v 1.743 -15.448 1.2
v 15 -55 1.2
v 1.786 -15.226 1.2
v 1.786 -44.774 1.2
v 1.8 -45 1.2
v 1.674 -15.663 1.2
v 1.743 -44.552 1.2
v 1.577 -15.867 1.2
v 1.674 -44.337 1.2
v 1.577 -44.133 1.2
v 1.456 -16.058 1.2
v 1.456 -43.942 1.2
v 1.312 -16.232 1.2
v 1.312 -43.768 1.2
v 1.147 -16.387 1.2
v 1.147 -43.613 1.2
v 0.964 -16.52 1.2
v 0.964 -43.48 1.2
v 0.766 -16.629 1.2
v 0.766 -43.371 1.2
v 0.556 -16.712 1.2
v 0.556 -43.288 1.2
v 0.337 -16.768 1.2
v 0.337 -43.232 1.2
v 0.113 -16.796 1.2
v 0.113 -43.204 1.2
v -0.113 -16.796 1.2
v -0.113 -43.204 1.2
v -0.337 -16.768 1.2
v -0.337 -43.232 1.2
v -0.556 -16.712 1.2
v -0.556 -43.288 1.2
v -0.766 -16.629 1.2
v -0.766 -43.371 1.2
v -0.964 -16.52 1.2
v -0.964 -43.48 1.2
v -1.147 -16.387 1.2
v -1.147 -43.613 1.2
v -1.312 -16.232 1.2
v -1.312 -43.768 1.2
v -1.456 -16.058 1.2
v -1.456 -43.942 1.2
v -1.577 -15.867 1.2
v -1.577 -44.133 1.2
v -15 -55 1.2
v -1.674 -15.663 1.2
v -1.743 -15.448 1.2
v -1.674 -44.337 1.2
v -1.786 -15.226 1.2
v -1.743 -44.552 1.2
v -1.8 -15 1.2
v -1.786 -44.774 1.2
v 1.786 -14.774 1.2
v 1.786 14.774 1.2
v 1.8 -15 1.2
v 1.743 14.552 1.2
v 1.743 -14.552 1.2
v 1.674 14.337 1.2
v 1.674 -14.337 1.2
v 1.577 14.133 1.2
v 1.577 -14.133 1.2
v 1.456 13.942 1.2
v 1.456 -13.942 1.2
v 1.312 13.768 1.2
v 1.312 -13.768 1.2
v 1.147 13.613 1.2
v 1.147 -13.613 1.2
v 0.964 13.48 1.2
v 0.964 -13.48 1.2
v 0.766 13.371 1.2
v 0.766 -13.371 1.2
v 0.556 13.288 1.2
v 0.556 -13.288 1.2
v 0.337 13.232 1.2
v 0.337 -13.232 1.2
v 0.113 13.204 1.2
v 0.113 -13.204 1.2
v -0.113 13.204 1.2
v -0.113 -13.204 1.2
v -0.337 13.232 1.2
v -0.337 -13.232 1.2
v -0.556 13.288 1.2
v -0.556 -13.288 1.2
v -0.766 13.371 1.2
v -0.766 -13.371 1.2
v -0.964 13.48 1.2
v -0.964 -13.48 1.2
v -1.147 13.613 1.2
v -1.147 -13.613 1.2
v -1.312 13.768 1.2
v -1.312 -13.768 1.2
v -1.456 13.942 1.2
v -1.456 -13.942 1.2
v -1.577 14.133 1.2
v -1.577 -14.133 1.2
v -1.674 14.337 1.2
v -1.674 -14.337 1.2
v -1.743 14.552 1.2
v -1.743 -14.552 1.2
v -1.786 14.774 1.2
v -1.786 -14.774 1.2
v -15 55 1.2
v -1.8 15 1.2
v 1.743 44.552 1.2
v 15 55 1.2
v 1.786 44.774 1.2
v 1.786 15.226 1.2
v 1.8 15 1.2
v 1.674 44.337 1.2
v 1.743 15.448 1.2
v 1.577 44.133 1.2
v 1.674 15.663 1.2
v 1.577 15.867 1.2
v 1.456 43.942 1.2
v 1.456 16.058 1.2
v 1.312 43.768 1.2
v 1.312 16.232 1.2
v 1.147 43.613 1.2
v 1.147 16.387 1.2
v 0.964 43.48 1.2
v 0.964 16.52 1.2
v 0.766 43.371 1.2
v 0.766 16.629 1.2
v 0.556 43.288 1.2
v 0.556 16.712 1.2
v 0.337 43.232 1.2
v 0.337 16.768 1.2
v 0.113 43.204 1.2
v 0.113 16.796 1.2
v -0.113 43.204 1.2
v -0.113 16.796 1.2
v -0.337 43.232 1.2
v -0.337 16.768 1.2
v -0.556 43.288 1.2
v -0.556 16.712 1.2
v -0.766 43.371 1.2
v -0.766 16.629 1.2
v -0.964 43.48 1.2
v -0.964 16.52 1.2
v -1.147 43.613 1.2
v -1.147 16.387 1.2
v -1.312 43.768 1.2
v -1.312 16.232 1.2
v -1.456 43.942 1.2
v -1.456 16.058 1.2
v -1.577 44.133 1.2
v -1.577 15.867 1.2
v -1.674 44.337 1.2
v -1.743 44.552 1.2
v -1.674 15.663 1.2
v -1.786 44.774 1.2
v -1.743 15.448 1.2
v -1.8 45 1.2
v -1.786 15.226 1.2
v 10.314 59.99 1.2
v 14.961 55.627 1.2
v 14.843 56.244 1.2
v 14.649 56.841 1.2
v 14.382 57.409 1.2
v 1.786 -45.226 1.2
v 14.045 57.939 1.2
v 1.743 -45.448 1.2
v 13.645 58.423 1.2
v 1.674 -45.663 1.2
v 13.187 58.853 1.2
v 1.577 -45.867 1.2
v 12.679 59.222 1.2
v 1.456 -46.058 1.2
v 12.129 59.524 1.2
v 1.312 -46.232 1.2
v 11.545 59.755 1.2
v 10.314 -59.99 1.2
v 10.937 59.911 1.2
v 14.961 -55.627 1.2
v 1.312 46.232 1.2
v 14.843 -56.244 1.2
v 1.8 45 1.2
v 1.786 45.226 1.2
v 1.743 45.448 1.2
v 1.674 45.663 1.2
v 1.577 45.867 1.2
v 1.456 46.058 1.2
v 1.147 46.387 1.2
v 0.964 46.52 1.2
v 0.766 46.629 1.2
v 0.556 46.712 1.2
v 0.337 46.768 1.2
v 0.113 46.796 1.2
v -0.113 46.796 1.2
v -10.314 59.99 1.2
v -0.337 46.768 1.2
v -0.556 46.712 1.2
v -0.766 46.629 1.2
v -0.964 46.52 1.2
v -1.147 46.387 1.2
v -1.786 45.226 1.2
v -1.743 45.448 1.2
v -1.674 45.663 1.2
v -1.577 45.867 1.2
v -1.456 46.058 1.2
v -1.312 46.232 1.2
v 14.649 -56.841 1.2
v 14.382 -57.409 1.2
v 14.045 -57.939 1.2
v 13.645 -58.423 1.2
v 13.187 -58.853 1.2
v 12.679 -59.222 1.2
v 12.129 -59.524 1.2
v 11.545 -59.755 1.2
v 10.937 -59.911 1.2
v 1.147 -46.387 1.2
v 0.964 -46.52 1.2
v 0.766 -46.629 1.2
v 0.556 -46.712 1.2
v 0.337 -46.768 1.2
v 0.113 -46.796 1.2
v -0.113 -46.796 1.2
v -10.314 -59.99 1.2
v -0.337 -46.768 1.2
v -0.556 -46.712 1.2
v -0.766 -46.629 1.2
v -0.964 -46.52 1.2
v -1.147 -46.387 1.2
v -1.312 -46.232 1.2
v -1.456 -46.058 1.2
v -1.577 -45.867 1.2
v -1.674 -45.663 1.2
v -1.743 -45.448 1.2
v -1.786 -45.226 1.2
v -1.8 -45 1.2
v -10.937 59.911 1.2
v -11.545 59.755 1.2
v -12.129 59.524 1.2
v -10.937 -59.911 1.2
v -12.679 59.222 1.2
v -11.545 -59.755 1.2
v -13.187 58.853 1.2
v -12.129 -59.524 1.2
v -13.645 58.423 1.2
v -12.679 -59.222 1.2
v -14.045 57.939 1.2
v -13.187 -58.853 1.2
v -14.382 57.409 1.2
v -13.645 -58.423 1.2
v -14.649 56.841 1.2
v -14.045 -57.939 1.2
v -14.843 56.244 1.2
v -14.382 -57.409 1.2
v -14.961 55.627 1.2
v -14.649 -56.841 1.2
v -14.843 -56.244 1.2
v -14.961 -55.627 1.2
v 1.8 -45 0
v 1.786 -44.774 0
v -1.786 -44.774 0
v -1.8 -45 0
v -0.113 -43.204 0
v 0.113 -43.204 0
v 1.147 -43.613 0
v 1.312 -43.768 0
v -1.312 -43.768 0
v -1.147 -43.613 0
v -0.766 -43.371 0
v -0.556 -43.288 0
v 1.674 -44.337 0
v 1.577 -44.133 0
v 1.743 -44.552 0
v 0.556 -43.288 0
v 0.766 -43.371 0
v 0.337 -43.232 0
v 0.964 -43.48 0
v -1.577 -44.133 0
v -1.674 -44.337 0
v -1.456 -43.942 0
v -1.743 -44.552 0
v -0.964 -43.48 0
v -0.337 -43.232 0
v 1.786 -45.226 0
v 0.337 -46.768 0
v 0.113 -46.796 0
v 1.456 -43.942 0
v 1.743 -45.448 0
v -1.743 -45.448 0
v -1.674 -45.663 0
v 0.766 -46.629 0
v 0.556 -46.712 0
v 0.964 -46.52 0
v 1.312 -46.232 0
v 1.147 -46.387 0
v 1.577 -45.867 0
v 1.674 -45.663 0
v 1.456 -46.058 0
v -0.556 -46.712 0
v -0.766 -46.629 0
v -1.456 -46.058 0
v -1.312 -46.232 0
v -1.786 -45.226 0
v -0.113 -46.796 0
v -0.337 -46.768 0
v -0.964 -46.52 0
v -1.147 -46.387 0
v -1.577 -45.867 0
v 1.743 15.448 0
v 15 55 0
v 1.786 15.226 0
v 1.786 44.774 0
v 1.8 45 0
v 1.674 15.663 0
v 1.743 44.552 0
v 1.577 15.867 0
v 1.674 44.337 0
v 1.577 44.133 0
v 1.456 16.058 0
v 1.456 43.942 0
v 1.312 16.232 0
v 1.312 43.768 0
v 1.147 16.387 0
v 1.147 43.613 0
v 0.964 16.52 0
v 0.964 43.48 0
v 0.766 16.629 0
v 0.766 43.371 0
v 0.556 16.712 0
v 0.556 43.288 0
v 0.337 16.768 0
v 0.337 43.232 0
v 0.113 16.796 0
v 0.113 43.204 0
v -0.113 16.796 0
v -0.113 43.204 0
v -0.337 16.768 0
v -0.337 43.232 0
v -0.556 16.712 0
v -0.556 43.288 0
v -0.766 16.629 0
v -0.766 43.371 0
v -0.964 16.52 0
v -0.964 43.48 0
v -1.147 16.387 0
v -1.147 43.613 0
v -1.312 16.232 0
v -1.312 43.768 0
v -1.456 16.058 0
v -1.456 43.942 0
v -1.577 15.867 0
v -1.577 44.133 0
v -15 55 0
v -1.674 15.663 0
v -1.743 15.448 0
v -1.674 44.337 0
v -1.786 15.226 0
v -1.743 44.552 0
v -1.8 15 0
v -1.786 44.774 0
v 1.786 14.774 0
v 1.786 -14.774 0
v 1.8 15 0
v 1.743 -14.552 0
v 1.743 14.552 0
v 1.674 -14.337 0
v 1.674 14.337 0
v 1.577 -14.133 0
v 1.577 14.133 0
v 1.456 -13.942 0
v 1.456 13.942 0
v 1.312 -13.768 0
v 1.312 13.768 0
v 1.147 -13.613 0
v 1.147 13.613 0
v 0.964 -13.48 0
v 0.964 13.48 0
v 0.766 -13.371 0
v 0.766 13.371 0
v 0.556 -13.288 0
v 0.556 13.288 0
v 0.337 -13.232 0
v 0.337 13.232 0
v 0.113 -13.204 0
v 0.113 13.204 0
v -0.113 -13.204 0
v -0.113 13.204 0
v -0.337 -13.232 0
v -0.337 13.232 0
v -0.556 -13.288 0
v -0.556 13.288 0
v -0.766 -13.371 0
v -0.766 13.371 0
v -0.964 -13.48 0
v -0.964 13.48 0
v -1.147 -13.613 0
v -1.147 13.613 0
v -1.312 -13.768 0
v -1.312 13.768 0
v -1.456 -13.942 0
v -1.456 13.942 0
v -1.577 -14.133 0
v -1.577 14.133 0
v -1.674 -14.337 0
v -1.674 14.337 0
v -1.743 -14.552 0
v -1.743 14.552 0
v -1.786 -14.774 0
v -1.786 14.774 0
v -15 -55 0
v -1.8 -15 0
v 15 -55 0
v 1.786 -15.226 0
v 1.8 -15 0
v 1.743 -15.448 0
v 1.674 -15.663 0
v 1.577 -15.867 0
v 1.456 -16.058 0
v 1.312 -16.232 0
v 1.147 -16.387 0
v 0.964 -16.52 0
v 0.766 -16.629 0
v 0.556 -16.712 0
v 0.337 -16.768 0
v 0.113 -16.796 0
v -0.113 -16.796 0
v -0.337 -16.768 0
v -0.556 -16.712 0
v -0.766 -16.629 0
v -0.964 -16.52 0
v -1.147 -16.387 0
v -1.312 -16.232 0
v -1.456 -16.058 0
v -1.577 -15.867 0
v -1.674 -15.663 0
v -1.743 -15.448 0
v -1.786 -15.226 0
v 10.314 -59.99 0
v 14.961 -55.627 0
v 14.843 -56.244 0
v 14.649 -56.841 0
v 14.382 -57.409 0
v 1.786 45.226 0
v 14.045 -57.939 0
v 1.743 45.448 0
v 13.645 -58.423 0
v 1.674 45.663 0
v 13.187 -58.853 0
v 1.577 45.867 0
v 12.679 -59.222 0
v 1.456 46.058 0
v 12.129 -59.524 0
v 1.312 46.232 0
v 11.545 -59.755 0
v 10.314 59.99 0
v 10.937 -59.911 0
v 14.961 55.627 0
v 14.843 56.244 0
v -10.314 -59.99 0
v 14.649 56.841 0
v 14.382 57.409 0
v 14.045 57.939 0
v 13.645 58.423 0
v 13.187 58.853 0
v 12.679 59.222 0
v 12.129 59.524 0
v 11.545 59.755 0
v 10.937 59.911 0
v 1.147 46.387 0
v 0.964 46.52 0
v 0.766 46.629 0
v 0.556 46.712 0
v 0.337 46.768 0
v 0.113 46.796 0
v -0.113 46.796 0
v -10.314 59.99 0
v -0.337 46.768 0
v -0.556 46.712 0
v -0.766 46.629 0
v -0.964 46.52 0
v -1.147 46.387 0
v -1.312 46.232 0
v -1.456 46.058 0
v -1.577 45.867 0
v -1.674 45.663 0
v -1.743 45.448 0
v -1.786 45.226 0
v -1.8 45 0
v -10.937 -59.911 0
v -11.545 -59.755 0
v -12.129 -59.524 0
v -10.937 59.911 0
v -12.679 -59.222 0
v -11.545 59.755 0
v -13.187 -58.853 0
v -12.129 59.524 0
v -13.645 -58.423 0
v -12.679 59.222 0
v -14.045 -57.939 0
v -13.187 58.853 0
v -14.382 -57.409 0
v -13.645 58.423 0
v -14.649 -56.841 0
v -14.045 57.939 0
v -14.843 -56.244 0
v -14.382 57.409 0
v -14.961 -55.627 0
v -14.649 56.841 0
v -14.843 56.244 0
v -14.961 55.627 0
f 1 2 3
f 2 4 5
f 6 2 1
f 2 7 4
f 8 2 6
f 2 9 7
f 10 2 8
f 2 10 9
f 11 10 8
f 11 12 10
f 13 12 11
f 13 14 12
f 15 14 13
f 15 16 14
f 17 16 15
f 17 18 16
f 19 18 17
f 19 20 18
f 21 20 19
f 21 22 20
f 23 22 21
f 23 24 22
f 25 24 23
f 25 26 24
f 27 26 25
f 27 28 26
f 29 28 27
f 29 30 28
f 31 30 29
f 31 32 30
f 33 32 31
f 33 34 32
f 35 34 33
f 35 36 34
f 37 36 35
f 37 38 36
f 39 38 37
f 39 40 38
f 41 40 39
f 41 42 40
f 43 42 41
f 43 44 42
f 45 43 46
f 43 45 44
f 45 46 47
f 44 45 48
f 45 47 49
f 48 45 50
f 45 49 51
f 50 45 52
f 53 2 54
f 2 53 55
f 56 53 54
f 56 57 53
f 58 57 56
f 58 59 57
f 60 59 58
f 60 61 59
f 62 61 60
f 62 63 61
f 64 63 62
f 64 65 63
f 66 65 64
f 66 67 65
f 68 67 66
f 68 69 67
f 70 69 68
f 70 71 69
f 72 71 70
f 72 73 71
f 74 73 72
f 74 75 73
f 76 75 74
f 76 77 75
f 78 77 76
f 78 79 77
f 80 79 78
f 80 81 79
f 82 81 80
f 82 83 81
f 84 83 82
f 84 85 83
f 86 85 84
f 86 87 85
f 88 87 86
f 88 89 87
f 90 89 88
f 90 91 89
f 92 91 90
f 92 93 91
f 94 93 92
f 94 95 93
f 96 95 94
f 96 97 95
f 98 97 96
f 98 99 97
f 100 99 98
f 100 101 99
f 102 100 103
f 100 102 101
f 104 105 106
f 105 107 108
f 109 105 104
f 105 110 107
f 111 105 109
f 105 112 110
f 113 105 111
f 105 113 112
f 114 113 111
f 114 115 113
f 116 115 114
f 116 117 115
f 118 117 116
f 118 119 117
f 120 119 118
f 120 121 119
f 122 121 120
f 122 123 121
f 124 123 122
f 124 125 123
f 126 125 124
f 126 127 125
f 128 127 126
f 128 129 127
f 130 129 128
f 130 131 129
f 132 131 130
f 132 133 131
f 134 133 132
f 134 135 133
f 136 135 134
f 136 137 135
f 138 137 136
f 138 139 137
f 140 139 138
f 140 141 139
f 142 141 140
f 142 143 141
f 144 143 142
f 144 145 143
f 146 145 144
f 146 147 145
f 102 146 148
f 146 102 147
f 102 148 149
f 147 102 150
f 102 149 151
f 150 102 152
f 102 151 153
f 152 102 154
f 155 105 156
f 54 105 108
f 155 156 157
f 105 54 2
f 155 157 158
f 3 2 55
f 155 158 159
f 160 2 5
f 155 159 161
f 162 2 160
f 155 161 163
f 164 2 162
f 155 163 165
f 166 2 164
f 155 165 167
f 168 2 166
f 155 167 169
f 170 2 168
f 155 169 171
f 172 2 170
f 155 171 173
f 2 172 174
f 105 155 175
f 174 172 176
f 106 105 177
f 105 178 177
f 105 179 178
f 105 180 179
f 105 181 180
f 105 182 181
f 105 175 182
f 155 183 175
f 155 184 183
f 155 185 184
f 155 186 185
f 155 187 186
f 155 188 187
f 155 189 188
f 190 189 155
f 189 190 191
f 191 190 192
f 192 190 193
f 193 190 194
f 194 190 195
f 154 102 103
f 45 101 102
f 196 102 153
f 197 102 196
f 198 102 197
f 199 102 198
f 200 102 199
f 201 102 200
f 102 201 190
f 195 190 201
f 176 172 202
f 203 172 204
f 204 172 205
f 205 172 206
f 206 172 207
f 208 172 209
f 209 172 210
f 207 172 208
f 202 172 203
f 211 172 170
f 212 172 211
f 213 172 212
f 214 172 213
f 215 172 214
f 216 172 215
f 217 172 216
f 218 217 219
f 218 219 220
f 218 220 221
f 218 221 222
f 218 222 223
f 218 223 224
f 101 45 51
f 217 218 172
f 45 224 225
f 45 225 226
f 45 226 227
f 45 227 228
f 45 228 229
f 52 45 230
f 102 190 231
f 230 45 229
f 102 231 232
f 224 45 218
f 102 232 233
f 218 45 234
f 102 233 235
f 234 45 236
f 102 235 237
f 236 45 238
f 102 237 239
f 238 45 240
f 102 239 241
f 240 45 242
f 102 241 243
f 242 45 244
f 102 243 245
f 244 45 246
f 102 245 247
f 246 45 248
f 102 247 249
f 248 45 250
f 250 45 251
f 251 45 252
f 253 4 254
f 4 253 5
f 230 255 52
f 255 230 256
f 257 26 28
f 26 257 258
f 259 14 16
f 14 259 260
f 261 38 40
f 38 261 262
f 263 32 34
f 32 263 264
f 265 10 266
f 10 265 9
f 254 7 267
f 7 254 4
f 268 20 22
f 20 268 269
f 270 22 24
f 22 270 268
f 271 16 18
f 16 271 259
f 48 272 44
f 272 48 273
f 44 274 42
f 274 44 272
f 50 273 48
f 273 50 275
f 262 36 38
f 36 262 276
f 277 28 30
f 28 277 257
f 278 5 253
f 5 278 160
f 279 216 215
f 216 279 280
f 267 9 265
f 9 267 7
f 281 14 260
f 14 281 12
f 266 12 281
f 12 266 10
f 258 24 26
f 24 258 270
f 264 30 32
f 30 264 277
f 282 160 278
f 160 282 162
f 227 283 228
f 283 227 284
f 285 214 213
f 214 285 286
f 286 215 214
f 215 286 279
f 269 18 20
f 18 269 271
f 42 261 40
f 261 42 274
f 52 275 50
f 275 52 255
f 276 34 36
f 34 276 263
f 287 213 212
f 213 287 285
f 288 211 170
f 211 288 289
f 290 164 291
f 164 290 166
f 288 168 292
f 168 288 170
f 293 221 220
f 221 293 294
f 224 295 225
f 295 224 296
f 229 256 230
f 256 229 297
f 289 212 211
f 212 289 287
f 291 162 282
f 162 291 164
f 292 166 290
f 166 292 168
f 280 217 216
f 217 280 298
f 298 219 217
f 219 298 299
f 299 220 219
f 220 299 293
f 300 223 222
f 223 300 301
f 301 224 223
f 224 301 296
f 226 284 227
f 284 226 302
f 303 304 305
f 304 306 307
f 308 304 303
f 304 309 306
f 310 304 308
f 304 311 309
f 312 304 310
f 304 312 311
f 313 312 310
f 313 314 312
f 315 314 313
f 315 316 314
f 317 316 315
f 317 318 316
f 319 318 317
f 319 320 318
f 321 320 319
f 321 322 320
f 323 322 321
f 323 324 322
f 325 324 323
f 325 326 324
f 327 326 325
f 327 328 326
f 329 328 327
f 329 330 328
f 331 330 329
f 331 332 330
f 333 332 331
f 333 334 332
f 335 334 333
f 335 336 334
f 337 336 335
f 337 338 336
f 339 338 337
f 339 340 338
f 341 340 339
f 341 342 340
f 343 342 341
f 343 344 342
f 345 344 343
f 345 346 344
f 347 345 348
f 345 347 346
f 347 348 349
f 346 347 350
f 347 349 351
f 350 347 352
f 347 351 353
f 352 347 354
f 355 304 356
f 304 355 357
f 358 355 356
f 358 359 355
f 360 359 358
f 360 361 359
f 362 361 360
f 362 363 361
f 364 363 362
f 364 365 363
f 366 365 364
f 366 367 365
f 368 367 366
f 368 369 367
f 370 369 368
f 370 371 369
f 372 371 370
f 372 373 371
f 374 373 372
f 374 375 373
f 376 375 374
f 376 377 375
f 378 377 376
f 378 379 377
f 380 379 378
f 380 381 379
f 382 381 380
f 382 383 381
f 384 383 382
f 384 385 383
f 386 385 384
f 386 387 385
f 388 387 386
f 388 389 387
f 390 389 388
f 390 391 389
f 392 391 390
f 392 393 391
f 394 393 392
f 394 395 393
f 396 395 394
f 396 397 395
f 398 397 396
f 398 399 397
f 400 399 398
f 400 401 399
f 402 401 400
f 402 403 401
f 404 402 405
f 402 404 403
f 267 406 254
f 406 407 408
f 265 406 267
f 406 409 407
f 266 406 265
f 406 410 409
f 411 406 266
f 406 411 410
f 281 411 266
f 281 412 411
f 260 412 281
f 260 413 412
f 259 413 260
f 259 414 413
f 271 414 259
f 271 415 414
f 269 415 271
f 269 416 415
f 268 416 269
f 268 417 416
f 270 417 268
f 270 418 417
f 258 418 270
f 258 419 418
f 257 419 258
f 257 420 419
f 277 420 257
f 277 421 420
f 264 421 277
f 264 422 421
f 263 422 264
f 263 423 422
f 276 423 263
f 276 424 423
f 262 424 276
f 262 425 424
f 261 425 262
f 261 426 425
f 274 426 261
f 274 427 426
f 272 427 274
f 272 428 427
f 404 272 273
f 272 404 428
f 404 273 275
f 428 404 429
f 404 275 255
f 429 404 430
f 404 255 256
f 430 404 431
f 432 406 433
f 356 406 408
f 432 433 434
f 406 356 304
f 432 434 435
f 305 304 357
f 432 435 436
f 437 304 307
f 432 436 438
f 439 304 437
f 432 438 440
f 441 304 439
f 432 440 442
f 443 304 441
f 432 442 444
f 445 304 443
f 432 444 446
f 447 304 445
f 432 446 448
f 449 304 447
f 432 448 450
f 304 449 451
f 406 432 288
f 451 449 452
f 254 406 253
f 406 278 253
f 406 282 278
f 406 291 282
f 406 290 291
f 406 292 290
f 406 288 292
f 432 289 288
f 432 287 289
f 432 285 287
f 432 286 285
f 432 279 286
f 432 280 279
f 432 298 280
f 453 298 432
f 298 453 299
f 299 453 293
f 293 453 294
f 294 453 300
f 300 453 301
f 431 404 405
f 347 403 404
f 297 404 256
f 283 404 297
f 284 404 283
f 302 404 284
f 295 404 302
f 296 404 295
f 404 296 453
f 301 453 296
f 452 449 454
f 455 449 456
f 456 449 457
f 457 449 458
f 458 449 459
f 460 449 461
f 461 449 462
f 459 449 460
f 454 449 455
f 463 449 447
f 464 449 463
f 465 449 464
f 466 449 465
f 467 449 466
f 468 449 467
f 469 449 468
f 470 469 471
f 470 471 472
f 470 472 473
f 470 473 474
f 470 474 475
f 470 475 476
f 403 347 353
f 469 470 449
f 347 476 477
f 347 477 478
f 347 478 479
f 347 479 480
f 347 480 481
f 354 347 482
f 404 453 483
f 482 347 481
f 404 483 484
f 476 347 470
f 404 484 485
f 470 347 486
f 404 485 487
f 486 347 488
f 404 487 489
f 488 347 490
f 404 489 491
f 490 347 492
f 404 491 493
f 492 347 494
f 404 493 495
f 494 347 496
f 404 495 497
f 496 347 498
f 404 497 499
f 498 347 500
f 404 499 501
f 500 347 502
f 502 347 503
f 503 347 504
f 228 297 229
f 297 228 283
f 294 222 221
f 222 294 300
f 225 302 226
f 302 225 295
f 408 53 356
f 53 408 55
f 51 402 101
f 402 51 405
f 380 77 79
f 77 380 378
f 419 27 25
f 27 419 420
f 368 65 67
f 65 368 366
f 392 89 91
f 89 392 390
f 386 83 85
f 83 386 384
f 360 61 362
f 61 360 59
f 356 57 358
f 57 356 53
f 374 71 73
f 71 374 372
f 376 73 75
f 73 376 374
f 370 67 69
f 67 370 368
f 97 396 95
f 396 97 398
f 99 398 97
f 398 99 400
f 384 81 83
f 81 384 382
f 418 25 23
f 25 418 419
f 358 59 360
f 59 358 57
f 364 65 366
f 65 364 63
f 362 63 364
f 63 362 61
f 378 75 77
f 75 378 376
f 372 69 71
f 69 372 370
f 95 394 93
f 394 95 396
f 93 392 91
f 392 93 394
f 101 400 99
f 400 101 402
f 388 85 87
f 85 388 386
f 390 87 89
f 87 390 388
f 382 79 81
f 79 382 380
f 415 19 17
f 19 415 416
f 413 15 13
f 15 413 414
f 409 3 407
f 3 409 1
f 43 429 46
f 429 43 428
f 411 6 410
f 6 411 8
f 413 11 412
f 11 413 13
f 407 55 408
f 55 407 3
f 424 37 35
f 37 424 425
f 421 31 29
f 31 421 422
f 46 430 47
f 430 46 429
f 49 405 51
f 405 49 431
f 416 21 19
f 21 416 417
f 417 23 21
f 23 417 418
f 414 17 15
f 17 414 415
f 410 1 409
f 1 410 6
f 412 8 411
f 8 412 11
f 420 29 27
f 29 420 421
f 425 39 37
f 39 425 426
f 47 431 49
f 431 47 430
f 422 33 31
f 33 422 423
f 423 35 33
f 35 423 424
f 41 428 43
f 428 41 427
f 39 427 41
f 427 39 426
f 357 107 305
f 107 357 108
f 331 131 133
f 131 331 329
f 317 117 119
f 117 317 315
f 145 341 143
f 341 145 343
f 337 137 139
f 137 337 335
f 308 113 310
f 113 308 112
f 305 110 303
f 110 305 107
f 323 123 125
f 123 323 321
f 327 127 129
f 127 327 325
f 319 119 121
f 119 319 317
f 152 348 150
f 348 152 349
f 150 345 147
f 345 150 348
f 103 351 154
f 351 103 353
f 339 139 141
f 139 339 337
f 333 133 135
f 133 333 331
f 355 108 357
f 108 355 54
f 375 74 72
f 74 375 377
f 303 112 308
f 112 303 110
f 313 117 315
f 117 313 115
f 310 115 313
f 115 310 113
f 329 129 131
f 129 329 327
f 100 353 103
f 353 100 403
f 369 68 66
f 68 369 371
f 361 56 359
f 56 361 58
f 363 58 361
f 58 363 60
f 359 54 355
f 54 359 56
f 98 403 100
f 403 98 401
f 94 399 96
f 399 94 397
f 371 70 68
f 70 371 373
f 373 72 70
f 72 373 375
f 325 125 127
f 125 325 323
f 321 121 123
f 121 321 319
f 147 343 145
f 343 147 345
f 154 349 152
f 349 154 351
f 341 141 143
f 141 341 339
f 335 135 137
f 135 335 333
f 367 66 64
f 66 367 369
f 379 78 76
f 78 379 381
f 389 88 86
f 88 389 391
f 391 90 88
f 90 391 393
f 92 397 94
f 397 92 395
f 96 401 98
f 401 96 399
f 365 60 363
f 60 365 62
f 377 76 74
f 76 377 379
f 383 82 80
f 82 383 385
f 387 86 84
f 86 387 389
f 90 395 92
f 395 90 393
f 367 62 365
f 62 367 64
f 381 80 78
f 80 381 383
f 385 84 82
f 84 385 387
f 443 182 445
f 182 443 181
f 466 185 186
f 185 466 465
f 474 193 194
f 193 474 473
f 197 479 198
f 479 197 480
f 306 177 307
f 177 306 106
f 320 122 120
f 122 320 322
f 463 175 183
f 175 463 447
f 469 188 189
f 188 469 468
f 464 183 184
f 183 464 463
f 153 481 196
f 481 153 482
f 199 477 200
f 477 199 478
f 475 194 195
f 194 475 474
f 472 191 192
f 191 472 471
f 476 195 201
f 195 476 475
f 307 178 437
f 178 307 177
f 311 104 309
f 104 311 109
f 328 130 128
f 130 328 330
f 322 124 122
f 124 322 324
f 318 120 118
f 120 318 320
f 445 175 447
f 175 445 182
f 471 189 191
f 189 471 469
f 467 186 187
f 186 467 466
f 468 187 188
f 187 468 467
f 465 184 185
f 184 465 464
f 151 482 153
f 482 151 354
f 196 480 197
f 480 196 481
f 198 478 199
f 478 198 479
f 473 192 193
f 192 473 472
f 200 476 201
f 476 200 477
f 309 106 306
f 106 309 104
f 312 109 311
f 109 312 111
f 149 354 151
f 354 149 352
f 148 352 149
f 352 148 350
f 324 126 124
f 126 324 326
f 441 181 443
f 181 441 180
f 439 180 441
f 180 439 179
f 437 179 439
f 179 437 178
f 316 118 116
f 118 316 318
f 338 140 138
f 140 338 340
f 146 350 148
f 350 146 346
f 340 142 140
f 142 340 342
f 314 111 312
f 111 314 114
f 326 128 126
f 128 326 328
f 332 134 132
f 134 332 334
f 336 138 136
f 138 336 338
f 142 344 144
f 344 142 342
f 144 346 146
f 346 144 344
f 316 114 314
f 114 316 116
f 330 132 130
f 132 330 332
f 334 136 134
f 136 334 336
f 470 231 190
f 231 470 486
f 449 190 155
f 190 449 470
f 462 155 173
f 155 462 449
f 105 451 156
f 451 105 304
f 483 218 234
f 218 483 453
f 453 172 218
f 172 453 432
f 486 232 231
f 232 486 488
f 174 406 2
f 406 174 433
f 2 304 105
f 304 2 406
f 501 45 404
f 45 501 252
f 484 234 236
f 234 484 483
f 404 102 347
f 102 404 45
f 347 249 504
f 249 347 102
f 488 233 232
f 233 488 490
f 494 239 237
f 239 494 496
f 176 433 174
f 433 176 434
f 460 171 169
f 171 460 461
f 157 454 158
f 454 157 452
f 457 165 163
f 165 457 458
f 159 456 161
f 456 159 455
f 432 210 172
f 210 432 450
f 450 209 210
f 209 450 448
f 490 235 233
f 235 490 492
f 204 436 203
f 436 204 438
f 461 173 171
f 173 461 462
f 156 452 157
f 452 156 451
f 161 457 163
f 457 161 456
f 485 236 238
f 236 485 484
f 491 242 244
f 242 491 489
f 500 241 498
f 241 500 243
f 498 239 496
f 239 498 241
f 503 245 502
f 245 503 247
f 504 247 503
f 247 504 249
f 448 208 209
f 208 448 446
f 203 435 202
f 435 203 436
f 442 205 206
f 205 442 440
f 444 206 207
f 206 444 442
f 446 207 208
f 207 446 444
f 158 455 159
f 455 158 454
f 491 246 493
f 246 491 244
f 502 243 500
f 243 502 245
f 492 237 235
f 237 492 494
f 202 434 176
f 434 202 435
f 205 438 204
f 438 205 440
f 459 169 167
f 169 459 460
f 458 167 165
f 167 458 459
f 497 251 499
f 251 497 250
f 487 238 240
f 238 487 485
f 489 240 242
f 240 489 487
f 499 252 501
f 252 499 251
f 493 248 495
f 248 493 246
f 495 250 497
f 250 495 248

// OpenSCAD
$fn = 50;


difference() {
	union() {
		hull() {
			translate(v = [-10.0000000000, 55.0000000000, 0]) {
				cylinder(h = 15, r = 5);
			}
			translate(v = [10.0000000000, 55.0000000000, 0]) {
				cylinder(h = 15, r = 5);
			}
			translate(v = [-10.0000000000, -55.0000000000, 0]) {
				cylinder(h = 15, r = 5);
			}
			translate(v = [10.0000000000, -55.0000000000, 0]) {
				cylinder(h = 15, r = 5);
			}
		}
	}
	union() {
		translate(v = [0, 0, 1.2000000000]) {
			hull() {
				translate(v = [-10.0000000000, 55.0000000000, 0]) {
					cylinder(h = 13.8000000000, r = 3.8000000000);
				}
				translate(v = [10.0000000000, 55.0000000000, 0]) {
					cylinder(h = 13.8000000000, r = 3.8000000000);
				}
				translate(v = [-10.0000000000, -55.0000000000, 0]) {
					cylinder(h = 13.8000000000, r = 3.8000000000);
				}
				translate(v = [10.0000000000, -55.0000000000, 0]) {
					cylinder(h = 13.8000000000, r = 3.8000000000);
				}
			}
		}
		#translate(v = [0.0000000000, -45.0000000000, 0]) {
			cylinder(h = 1.2000000000, r = 1.8000000000);
		}
		#translate(v = [0.0000000000, -15.0000000000, 0]) {
			cylinder(h = 1.2000000000, r = 1.8000000000);
		}
		#translate(v = [0.0000000000, 15.0000000000, 0]) {
			cylinder(h = 1.2000000000, r = 1.8000000000);
		}
		#translate(v = [0.0000000000, 45.0000000000, 0]) {
			cylinder(h = 1.2000000000, r = 1.8000000000);
		}
		translate(v = [-250.0000000000, -250.0000000000, 1.2000000000]) {
			cube(size = [500, 500, 500]);
		}
		translate(v = [-250.0000000000, -250.0000000000, 1.2000000000]) {
			cube(size = [500, 500, 500]);
		}
		translate(v = [-250.0000000000, -250.0000000000, 1.2000000000]) {
			cube(size = [500, 500, 500]);
		}
	}
}
